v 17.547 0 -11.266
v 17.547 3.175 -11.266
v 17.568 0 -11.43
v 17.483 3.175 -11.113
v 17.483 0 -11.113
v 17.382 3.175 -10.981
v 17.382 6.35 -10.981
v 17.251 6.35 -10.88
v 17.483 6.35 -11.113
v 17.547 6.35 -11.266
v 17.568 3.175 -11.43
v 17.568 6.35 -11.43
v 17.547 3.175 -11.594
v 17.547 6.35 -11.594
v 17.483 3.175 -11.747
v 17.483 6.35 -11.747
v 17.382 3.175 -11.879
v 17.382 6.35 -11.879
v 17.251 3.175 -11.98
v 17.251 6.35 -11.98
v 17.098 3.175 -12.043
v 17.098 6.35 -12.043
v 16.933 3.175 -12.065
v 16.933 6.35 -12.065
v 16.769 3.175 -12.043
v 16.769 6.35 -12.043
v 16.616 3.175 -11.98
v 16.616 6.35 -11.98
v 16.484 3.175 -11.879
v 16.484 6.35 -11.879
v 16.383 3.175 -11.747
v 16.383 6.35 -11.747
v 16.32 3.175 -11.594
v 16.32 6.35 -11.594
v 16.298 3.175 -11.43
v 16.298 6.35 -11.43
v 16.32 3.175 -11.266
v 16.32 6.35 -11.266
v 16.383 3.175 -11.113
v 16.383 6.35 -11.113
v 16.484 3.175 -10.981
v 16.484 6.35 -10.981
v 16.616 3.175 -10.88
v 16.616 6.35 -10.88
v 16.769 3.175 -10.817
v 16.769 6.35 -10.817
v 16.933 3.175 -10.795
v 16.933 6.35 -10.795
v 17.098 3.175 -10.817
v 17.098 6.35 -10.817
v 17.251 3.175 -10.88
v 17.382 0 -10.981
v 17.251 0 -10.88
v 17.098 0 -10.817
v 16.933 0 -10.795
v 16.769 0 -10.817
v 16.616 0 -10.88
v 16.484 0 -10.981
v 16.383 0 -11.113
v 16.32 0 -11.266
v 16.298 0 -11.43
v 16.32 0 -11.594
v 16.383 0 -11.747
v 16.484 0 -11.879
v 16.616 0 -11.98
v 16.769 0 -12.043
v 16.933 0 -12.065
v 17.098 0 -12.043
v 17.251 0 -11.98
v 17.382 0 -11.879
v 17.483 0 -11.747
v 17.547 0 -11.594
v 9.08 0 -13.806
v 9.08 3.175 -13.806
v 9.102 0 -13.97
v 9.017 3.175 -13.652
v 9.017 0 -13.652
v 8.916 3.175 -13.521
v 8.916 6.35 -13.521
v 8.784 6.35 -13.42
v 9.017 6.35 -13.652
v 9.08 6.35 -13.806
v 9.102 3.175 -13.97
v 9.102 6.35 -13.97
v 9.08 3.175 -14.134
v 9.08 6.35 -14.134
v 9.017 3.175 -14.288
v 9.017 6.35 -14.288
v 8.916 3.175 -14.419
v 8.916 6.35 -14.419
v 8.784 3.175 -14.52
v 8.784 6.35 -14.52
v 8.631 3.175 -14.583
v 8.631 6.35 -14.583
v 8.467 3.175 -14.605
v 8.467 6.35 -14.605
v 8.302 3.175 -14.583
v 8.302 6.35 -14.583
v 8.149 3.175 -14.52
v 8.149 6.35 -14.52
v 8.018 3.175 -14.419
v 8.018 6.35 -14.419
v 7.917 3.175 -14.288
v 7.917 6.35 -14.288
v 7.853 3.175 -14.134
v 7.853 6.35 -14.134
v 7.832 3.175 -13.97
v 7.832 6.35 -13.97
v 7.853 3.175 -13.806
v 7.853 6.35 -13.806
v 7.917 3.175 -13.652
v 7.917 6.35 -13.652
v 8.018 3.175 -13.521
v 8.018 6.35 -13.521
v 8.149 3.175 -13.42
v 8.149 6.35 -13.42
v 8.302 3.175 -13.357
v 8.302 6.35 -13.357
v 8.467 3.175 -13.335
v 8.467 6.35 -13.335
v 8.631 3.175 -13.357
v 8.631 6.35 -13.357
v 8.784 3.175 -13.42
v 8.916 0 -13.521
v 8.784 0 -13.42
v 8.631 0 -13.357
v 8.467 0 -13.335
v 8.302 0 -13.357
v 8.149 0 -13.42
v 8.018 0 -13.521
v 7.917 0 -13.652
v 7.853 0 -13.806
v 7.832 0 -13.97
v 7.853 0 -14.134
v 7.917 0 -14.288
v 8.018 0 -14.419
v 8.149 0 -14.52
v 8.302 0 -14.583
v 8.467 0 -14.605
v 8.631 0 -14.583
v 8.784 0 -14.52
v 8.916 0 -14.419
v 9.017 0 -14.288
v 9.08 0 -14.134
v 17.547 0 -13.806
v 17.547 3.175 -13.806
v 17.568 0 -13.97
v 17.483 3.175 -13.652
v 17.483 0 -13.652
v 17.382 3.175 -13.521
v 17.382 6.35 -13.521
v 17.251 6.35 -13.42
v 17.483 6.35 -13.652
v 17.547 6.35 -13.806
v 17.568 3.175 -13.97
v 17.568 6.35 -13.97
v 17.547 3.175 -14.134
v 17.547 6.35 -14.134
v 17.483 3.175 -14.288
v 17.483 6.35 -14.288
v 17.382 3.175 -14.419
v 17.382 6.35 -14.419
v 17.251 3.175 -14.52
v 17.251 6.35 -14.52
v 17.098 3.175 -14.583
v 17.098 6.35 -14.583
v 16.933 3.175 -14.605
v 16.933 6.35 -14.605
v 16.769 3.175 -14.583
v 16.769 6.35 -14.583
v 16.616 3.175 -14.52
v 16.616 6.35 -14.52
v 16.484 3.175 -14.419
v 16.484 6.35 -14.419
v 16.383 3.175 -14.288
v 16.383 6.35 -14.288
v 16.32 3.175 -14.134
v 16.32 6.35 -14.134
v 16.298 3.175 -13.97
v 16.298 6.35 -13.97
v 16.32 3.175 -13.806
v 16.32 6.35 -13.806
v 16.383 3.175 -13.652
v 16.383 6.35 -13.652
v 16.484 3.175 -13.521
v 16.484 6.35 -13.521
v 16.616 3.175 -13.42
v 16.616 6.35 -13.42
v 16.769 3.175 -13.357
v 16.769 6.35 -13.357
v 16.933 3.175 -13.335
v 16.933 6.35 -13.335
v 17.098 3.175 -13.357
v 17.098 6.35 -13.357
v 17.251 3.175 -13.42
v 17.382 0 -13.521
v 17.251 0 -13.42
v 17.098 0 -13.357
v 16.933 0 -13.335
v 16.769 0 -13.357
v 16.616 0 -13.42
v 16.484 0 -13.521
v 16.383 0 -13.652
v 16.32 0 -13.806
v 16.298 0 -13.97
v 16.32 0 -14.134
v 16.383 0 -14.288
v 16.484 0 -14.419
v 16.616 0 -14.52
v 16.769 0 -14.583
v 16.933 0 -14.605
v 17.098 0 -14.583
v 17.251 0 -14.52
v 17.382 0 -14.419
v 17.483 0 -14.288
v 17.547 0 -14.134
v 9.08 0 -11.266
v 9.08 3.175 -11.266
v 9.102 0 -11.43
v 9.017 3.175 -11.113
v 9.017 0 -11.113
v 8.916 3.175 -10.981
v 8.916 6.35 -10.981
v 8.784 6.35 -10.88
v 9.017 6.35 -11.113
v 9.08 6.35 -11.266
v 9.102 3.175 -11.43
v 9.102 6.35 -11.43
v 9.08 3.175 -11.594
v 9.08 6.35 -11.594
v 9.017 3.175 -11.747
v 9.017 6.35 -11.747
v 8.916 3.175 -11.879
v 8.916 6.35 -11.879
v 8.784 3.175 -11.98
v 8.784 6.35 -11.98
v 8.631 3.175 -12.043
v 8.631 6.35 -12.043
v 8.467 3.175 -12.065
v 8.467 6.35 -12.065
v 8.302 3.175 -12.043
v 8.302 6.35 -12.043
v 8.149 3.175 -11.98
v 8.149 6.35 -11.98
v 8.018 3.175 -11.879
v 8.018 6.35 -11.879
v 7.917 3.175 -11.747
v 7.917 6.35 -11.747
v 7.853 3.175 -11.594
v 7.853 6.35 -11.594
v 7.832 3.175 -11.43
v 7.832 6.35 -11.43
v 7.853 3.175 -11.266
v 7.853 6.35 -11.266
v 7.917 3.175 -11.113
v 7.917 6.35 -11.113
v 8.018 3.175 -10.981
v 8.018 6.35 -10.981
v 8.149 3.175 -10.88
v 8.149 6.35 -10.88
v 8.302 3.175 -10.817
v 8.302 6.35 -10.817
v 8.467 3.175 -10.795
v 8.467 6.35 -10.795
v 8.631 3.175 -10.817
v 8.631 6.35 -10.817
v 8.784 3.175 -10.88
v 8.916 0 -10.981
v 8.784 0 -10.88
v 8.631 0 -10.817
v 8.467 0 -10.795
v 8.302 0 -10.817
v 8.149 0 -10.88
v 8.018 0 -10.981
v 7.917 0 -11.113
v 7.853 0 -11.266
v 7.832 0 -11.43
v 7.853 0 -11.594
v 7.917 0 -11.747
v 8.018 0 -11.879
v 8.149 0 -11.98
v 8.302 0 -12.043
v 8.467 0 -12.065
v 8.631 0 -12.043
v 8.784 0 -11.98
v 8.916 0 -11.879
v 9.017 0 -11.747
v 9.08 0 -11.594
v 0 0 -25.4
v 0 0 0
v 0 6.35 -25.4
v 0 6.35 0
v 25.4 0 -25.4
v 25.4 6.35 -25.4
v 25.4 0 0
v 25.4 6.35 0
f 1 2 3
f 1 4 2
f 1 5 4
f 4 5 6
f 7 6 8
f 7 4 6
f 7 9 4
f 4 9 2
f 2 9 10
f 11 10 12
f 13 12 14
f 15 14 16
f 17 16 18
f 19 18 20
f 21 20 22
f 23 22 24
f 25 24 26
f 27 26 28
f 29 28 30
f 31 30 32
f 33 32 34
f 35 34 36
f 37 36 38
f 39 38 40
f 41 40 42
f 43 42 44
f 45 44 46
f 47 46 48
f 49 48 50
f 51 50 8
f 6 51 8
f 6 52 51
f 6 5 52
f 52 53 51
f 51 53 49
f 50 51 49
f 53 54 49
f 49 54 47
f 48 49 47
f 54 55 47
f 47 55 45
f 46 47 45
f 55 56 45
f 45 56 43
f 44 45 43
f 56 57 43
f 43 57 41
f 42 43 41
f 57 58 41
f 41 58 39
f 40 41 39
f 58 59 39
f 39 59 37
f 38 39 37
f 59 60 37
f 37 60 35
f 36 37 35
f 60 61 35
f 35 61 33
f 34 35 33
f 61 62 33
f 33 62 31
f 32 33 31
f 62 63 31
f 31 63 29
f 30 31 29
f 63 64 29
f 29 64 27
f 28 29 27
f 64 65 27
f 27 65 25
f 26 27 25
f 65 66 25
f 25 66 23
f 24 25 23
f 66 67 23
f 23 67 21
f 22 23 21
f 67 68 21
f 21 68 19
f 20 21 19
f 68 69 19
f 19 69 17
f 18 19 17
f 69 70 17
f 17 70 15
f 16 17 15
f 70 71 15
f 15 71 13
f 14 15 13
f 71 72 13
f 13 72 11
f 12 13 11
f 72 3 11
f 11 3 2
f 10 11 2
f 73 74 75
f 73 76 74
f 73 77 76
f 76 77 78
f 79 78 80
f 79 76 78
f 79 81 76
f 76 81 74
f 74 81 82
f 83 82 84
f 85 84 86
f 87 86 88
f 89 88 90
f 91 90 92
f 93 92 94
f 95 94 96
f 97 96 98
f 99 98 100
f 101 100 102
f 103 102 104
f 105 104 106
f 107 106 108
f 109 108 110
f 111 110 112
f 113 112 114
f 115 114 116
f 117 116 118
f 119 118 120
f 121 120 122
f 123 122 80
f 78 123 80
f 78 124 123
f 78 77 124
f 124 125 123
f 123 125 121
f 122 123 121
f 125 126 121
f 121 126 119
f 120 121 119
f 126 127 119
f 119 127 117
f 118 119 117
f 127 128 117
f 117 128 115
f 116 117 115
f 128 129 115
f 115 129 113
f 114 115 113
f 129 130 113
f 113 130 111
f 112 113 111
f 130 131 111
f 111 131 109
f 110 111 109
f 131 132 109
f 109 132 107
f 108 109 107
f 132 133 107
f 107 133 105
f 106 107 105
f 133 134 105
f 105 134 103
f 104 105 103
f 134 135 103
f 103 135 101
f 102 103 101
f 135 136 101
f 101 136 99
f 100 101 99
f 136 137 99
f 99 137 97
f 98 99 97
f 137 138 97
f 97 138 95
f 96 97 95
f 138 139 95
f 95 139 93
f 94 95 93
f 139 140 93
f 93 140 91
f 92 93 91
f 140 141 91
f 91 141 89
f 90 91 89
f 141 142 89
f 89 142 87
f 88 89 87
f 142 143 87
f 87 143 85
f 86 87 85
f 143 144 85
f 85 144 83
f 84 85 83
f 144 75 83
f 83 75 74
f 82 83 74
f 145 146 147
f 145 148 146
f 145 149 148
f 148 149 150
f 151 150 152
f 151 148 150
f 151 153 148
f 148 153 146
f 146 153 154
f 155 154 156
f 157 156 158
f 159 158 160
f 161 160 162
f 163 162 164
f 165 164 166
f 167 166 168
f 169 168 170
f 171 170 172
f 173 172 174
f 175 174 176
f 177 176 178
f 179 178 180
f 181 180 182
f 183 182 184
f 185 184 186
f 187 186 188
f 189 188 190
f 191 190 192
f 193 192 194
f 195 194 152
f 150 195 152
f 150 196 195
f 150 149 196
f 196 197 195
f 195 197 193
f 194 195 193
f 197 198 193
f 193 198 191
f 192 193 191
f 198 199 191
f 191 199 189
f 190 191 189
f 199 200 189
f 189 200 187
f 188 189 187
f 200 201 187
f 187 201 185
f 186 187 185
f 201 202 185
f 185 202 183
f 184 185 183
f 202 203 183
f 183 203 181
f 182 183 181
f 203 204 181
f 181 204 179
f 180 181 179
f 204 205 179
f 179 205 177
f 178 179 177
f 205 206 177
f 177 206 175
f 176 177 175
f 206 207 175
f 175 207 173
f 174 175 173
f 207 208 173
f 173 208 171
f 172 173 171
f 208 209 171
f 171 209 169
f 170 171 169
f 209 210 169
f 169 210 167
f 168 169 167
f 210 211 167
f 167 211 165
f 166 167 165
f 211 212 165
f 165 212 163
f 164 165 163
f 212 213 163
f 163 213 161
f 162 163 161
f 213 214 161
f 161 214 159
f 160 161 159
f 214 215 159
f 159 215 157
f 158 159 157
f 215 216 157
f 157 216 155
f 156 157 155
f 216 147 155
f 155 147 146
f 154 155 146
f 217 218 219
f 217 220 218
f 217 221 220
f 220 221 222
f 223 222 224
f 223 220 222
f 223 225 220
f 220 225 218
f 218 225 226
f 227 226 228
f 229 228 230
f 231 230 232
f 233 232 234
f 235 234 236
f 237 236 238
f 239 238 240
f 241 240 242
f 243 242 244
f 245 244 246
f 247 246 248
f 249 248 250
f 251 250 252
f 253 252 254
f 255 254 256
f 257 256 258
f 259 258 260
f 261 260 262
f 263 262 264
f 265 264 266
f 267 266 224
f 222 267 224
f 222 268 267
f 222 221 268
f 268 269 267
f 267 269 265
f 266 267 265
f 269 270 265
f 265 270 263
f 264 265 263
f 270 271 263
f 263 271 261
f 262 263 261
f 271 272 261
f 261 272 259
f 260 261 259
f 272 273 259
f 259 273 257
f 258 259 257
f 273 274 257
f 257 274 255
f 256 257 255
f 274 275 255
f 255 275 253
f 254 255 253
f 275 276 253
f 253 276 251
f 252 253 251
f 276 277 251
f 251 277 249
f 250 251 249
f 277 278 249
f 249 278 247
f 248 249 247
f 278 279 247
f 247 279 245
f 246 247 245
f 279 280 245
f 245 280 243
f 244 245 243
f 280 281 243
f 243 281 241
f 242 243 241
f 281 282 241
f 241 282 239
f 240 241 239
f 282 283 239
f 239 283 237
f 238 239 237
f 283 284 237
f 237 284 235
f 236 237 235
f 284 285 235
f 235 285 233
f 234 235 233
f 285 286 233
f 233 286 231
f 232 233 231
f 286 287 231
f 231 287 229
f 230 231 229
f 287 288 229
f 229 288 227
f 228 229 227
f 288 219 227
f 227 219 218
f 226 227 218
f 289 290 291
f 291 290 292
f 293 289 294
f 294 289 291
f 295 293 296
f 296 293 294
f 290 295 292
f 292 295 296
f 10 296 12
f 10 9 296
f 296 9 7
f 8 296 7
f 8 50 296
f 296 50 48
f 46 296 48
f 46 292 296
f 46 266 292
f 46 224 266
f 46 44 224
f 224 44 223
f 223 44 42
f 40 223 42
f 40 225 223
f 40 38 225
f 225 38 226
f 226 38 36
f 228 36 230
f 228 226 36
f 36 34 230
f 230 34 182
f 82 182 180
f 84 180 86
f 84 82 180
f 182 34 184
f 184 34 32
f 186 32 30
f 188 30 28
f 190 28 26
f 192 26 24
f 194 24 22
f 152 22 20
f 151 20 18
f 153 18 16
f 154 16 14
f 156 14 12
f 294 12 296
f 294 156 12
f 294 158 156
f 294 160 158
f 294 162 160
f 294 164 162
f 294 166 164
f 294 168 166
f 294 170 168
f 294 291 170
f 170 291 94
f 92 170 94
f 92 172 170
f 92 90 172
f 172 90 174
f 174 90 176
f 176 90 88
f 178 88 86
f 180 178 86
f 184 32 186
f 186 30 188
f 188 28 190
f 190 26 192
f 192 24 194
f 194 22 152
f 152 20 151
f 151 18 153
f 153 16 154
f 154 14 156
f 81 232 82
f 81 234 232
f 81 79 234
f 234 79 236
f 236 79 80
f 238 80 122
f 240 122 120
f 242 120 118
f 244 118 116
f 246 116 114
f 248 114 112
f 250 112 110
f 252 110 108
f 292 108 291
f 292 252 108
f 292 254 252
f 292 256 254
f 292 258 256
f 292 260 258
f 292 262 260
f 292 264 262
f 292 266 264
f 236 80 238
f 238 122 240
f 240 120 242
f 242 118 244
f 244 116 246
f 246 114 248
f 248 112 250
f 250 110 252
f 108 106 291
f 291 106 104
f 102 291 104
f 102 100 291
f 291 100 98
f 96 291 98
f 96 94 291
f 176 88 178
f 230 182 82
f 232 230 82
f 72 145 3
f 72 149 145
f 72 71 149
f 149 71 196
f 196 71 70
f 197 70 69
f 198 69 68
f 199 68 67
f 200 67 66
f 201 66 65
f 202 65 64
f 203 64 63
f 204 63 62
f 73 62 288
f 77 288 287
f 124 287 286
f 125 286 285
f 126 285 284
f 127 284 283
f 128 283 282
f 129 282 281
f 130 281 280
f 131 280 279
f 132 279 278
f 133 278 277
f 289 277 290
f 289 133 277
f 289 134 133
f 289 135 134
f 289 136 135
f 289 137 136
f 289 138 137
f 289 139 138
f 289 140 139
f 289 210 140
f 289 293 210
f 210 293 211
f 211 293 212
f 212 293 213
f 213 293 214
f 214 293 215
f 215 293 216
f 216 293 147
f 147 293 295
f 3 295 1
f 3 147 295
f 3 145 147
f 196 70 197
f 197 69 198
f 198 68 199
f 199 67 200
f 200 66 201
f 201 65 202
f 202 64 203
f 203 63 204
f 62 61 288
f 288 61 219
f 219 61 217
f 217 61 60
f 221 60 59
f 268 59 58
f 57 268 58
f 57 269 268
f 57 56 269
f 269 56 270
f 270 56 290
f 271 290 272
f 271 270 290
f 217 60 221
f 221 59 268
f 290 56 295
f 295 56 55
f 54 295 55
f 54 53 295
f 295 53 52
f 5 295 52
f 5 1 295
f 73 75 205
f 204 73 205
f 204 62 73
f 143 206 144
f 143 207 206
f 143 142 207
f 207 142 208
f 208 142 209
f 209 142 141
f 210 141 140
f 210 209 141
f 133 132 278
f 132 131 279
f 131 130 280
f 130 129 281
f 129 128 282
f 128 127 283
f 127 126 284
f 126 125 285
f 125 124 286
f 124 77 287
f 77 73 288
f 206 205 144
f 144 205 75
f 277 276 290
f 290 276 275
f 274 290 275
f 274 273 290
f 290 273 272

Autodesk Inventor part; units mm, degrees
ref_plane "YZ Plane" through (0, 0, 0) normal (1, 0, 0) x (0, 1, 0)
ref_plane "XZ Plane" through (0, 0, 0) normal (0, 1, 0) x (-1, 0, 0)
ref_plane "XY Plane" through (0, 0, 0) normal (0, 0, 1) x (1, 0, 0)
sketch "Sketch1" plane through (0, 0, 0) normal (0, 1, 0) x (-1, 0, 0)
  line L0 (0, 0) -> (-25.4, 0)
  line L1 (-25.4, 0) -> (-25.4, -25.4)
  line L2 (-25.4, -25.4) -> (0, -25.4)
  line L3 (0, -25.4) -> (0, 0)
  dimension "d0" = 25.4
extrude "Extrusion1" add sketch "Sketch1" along normal blind 6.35
sketch "Sketch2" plane through (0, 6.35, 0) normal (0, 1, 0) x (1, 0, 0)
  circle A0 centre (8.4667, 13.97) radius 0.635
  circle A1 centre (16.9333, 13.97) radius 0.635
  circle A2 centre (16.9333, 11.43) radius 0.635
  circle A3 centre (8.4667, 11.43) radius 0.635
  line L0 (25.4, 0) -> (25.4, 25.4) projected
  line L1 (0, 0) -> (25.4, 0) projected
  dimension "d3" = 8.4667
  dimension "d4" = 8.4667
  dimension "d5" = 2.54
  dimension "d6" = 1.27
  dimension "d7" = 11.43
extrude "Extrusion2" cut sketch "Sketch2" against normal blind 6.35
equation "\"d1\" = 0.25 * d0"
equation "\"d3\" = 0.333333 * d0"
equation "\"d4\" = d3"
equation "\"d8\" = 0.25 * d0"
properties part number "pieceBase"
